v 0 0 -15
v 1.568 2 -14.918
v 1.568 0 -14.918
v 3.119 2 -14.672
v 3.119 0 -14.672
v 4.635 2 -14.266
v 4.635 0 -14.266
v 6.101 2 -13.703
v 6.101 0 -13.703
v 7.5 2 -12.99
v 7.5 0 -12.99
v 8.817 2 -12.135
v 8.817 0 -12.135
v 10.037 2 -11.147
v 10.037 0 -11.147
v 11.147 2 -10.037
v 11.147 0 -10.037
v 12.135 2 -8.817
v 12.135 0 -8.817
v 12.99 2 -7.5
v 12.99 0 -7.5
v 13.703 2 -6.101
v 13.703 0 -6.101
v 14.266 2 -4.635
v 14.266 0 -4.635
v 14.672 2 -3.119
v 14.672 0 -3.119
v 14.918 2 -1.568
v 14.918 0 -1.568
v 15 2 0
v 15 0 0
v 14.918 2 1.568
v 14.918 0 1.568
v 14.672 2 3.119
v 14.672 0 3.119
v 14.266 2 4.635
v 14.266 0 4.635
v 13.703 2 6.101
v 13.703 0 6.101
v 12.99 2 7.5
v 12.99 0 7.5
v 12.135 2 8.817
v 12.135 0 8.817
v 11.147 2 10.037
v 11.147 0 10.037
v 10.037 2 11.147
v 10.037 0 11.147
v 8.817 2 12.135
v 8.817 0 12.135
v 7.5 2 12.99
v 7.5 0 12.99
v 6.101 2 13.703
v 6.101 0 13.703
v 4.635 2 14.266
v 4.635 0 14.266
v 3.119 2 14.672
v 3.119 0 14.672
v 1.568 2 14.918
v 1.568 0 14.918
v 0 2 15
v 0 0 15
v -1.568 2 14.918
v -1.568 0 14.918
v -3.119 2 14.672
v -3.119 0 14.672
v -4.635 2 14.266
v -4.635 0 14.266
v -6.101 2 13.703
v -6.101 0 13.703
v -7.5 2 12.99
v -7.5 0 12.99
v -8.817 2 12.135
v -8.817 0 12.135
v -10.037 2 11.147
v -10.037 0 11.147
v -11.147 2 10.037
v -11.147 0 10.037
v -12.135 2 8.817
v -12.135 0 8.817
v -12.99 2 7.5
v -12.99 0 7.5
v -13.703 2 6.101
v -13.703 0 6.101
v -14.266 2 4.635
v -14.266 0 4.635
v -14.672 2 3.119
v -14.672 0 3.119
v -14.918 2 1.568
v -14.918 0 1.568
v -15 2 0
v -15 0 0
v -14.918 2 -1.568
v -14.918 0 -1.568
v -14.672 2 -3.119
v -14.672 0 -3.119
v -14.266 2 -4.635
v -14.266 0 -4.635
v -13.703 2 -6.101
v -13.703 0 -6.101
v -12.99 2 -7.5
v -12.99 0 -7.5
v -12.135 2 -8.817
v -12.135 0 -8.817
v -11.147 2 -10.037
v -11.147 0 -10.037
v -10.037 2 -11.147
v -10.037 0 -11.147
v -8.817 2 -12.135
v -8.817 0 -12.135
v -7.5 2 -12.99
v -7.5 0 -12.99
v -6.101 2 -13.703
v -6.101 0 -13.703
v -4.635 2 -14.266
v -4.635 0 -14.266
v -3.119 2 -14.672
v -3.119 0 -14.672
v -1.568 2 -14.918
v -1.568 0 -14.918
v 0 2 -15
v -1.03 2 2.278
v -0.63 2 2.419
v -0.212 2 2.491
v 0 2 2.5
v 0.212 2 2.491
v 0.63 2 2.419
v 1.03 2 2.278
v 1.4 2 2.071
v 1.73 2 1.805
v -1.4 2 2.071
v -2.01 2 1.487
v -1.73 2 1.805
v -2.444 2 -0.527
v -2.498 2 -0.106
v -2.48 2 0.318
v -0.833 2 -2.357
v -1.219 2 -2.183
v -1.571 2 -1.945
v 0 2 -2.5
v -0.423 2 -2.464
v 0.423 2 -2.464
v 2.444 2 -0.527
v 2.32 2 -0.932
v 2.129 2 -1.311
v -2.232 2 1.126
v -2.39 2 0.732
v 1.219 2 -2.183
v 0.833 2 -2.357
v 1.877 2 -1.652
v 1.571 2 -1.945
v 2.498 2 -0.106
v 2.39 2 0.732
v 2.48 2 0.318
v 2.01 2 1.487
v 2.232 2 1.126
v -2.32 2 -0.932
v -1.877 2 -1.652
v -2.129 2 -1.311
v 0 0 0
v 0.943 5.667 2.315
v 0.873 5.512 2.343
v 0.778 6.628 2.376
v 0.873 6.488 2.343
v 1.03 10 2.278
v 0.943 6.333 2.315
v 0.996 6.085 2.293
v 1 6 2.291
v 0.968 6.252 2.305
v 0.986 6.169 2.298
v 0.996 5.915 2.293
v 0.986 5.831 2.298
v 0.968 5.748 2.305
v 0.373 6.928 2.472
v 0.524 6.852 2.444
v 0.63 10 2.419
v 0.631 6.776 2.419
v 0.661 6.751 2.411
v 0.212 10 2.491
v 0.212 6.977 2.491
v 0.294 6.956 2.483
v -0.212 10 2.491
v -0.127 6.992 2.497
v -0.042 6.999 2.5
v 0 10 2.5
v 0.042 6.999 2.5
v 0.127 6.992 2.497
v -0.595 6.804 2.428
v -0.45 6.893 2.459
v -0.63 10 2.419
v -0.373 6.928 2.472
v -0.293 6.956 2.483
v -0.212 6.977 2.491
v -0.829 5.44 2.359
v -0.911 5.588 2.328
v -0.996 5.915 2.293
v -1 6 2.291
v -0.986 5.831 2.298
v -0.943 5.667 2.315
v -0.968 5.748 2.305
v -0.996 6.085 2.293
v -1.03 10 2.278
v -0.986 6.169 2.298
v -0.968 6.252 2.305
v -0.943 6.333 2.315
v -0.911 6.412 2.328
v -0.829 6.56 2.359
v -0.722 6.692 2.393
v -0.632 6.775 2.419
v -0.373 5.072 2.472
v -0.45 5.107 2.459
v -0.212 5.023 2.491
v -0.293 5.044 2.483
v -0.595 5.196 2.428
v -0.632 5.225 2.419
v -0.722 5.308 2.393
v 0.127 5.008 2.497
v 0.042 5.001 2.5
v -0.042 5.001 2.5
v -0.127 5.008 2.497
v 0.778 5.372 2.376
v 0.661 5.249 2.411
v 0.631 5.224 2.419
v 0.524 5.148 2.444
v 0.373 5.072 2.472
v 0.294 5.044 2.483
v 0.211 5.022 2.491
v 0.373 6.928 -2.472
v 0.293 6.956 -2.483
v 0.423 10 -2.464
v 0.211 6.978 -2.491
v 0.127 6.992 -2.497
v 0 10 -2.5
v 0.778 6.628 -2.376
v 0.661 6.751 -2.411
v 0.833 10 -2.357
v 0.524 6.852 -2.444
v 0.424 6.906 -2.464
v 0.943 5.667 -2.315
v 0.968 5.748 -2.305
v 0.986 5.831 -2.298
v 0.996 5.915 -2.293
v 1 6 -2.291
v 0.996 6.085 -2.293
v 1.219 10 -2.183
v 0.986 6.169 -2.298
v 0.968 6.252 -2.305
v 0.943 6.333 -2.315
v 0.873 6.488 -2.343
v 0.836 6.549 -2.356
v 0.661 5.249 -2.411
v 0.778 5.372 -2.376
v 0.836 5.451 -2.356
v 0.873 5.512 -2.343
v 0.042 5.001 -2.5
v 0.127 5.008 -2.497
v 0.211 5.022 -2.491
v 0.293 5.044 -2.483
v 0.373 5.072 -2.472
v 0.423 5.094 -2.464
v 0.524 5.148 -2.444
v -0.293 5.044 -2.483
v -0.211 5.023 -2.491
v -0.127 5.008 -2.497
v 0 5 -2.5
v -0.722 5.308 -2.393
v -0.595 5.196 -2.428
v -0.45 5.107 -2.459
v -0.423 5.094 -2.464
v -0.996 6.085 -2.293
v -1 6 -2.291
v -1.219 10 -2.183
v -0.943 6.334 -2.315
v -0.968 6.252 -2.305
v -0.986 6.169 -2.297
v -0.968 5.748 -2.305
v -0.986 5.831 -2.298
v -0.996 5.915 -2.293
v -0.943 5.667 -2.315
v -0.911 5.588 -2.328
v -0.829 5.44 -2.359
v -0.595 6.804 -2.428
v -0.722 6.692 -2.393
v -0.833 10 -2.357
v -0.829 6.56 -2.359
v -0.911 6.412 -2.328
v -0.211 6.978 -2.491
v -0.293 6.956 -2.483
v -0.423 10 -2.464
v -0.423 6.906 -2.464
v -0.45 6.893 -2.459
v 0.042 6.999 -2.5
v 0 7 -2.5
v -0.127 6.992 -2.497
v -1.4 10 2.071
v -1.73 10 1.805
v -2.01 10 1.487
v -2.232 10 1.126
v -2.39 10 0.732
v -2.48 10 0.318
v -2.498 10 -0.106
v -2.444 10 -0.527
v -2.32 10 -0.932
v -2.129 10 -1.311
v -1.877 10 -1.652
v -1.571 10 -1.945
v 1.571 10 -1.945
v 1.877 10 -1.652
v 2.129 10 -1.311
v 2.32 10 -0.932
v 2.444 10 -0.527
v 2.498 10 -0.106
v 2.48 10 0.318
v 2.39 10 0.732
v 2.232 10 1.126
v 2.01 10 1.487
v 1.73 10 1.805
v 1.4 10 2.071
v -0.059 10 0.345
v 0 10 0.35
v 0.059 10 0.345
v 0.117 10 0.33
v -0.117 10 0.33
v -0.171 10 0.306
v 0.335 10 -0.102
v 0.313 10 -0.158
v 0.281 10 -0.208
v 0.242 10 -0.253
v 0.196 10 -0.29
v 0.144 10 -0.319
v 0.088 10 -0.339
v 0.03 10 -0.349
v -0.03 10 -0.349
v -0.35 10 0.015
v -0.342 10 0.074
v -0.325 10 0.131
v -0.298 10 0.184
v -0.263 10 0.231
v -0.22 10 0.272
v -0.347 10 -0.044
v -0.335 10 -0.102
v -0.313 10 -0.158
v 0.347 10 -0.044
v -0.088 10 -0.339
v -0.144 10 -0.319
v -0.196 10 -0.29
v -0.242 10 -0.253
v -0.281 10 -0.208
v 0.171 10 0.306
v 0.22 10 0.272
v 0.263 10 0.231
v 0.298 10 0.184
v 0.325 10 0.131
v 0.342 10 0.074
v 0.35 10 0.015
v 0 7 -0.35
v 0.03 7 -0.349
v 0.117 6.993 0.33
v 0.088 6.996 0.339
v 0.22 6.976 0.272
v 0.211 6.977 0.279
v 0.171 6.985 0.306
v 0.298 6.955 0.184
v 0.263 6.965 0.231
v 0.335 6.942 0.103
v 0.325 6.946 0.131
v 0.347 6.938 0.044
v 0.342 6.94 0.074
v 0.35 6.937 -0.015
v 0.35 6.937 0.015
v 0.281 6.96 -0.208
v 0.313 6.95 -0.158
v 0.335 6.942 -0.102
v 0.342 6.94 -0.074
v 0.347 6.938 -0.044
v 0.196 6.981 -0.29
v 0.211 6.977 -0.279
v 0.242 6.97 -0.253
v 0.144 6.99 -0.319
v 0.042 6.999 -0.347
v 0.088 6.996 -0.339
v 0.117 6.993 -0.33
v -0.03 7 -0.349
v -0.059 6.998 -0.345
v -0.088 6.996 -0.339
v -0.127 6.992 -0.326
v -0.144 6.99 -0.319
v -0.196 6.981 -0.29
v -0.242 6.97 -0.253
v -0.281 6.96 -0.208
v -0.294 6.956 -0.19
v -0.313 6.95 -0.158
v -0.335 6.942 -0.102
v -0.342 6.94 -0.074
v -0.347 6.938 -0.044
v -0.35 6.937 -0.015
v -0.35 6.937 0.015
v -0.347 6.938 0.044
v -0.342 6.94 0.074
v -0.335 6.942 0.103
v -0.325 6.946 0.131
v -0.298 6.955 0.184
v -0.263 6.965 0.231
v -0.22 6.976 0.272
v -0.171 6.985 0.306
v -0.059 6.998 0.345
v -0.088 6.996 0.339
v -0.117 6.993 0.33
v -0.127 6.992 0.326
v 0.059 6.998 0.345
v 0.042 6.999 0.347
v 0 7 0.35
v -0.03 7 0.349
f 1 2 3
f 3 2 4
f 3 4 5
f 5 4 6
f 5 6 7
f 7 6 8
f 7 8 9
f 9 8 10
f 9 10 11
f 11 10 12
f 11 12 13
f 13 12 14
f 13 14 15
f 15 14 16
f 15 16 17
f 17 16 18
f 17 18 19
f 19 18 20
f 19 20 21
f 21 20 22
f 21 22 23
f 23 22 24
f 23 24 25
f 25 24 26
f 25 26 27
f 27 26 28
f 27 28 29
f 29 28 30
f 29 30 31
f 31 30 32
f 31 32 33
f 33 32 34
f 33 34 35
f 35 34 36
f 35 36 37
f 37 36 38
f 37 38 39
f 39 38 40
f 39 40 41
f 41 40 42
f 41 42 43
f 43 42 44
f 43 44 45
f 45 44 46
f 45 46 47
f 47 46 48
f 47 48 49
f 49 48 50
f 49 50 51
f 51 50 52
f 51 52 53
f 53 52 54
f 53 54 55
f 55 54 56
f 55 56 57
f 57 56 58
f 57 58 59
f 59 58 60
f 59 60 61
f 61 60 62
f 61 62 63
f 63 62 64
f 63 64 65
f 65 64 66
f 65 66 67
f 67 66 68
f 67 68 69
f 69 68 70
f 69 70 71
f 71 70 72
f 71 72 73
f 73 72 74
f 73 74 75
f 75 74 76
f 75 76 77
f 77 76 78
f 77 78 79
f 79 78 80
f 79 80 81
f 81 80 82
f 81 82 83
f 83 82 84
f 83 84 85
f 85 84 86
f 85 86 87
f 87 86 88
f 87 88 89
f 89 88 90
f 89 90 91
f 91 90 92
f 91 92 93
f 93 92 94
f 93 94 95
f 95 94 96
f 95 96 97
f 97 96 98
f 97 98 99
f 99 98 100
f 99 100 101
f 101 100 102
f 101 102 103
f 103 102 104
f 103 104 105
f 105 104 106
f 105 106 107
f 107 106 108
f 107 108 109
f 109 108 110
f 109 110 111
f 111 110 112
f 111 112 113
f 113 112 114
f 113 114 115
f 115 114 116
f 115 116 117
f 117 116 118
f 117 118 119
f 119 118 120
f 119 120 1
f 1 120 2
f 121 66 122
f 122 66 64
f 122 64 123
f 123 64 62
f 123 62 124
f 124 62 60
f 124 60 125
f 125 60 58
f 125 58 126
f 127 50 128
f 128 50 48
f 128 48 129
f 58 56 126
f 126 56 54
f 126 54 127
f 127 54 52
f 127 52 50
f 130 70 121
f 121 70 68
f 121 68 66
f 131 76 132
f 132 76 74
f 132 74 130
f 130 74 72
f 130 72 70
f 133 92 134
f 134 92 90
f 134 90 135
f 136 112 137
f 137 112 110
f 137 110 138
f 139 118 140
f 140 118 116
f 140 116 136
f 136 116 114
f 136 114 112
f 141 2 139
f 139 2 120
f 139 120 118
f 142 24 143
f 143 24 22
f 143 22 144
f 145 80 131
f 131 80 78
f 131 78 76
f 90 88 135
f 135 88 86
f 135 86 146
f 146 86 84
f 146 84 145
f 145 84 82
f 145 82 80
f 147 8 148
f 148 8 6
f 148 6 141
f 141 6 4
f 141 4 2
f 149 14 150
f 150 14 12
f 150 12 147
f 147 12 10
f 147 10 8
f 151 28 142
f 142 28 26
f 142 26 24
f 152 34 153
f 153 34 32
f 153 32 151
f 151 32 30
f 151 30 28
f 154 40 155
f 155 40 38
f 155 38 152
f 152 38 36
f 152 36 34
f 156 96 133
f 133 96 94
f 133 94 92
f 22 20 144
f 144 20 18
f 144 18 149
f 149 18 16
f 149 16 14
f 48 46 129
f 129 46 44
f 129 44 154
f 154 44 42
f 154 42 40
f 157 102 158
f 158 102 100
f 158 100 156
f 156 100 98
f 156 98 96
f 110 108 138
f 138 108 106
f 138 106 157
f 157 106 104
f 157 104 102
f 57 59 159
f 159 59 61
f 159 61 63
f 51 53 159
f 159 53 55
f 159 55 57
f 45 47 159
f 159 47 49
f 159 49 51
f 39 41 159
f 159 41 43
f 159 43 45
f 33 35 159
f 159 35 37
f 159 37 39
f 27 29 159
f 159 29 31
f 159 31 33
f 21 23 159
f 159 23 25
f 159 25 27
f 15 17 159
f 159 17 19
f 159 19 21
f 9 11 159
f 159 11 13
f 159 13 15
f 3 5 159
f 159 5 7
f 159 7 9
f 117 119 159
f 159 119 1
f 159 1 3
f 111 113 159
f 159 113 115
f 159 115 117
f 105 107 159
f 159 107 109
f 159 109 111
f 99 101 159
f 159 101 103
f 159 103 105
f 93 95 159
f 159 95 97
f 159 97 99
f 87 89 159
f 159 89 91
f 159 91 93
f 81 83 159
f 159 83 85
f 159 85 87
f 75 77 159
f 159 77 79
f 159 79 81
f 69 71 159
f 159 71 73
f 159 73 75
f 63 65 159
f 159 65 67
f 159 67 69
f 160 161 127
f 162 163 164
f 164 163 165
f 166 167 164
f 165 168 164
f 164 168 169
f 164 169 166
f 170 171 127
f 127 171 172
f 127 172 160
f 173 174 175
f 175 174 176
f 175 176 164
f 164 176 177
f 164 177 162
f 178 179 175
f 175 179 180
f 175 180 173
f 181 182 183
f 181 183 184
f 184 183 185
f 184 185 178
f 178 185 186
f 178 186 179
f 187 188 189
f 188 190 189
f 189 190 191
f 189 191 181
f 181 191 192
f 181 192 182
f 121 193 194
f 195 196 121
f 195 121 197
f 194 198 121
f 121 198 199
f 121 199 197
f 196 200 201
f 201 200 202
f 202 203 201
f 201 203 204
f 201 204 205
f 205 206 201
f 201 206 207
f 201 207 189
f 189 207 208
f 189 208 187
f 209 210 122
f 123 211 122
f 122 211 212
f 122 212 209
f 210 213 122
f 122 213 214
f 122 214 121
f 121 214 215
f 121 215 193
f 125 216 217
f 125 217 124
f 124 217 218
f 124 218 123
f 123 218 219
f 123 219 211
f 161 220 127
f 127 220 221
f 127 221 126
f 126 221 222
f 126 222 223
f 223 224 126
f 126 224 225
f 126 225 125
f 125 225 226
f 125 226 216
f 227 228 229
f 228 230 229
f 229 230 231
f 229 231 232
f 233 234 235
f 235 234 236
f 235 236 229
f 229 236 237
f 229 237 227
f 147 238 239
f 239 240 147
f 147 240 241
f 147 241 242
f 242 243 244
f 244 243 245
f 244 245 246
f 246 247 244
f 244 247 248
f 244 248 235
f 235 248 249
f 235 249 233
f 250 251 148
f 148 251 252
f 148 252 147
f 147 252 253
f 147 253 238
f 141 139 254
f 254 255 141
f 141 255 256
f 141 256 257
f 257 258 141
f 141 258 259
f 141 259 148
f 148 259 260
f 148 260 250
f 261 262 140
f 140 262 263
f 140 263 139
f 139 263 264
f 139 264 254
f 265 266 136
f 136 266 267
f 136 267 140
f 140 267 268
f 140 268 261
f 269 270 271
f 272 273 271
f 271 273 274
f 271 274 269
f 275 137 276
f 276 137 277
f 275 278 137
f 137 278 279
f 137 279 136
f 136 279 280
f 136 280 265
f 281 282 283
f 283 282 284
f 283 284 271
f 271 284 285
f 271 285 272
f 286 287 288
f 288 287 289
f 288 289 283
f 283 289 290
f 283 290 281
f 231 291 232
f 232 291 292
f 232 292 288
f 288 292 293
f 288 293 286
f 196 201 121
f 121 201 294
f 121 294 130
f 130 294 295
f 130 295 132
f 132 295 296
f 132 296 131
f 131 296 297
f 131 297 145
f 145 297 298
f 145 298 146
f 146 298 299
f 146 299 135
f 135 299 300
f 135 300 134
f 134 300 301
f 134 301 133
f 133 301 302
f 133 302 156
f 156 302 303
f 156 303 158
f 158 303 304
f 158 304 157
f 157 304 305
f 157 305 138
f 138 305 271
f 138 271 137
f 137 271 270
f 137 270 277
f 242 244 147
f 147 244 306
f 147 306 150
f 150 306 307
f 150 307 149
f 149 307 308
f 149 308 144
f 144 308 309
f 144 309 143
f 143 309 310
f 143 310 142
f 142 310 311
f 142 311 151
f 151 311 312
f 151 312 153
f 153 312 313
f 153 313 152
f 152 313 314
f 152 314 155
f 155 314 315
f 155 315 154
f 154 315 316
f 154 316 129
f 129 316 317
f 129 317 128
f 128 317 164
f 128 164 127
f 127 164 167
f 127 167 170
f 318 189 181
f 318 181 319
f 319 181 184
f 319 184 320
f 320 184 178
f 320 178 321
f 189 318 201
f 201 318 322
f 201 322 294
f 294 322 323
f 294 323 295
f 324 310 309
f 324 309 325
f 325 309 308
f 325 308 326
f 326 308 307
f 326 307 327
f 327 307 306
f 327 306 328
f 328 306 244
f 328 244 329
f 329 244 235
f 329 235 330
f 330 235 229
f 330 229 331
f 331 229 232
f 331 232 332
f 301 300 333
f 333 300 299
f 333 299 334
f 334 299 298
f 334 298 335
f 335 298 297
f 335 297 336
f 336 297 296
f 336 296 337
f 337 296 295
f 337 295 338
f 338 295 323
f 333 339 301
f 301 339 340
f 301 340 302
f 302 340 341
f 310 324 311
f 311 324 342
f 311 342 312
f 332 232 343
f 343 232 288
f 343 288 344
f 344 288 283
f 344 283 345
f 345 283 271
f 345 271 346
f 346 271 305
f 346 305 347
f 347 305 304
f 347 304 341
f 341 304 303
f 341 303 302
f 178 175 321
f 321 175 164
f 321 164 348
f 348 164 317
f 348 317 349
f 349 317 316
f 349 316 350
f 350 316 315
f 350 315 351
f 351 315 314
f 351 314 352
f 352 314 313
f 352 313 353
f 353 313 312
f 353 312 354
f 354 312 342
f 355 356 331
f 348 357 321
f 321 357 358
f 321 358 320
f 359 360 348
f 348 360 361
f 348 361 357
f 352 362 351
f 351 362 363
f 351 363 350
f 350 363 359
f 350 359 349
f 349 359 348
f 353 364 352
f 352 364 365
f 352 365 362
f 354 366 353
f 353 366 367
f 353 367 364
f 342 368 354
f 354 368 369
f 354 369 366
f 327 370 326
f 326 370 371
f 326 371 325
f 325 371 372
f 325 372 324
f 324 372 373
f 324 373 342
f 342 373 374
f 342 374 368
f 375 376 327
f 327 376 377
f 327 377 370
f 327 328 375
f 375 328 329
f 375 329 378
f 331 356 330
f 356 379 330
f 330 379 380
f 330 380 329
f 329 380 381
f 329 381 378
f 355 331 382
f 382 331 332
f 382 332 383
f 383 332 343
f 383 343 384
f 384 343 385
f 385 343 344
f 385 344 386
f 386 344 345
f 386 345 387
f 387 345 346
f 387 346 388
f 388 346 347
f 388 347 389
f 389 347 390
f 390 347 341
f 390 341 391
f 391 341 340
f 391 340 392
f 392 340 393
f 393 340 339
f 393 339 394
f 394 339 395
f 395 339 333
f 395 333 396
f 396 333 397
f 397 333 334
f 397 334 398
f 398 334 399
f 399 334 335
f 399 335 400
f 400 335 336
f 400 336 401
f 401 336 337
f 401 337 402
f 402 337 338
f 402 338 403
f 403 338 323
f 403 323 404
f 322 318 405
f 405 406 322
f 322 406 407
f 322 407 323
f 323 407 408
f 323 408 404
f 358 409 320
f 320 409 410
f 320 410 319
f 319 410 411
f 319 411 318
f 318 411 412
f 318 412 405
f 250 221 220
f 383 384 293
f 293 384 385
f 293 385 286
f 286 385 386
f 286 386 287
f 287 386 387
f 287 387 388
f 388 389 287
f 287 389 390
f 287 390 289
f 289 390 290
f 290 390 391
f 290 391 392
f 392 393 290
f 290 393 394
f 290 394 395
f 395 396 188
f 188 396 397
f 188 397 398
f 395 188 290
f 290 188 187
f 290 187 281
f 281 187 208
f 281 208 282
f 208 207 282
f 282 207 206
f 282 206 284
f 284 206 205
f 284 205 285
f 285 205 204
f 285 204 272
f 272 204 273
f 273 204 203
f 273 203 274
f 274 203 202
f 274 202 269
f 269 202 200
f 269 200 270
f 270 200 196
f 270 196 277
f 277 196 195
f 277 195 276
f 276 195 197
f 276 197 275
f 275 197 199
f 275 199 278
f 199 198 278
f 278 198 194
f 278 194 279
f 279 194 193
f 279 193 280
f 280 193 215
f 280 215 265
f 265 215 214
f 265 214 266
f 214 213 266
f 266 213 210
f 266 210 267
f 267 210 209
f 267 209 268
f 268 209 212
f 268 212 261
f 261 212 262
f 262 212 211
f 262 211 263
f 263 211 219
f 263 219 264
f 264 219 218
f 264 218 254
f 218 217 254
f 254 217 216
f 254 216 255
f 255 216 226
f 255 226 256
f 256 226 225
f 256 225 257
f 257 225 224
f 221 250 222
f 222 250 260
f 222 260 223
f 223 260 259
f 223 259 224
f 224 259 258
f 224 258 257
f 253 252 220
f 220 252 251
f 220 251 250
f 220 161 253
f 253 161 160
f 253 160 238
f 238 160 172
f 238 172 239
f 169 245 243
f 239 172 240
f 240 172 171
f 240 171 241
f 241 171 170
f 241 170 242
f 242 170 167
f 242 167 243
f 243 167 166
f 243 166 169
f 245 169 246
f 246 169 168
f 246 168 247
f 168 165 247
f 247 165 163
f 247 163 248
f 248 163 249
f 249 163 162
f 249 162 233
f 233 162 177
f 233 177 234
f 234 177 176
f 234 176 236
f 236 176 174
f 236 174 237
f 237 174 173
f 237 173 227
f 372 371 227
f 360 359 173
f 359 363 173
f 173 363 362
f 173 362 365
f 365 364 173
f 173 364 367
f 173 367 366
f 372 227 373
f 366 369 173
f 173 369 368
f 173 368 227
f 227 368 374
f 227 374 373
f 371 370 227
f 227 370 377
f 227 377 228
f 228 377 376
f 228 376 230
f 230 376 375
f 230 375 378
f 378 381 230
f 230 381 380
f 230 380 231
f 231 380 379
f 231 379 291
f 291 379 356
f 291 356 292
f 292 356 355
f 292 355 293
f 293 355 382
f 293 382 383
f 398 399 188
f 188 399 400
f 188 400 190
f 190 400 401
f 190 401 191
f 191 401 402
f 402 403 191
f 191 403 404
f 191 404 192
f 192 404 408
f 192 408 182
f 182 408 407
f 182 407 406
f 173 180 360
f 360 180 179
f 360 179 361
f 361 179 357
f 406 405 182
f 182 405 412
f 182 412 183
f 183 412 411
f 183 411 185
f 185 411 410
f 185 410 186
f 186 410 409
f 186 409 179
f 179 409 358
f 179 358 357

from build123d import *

# Parameters (mm, degrees)
SKETCH_1_R               = 15
EXTRUDE_1_DEPTH          = 2
SKETCH_1_7_R             = 2.5
EXTRUDE_2_DEPTH          = 10
SKETCH_2_R               = 0.35
CUT_EXTRUDE_1_DEPTH      = 4
CUT_EXTRUDE_3_DEPTH      = 24.452078799
CUT_EXTRUDE_3_DEPTH_BACK = 24.452078799
SKETCH_3_R               = 1


with BuildPart() as part:
    # 草图1 → 凸台-拉伸1 (new body)
    with BuildSketch(Plane(origin=(0, 0, 0), x_dir=(1, 0, 0), z_dir=(0, 1, 0))):
        Circle(SKETCH_1_R)
    extrude(amount=EXTRUDE_1_DEPTH)

    # 草图1<7> → 凸台-拉伸2 (add)
    with BuildSketch(Plane(origin=(0, 0, 0), x_dir=(1, 0, 0), z_dir=(0, 1, 0))):
        Circle(SKETCH_1_7_R)
    extrude(amount=EXTRUDE_2_DEPTH)

    # 草图2 → 切除-拉伸1 (cut)
    with BuildSketch(Plane(origin=(0, 10, 0), x_dir=(1, 0, 0), z_dir=(0, 1, 0))):
        Circle(SKETCH_2_R)
    extrude(amount=-CUT_EXTRUDE_1_DEPTH, mode=Mode.SUBTRACT)

    # 草图3 → 切除-拉伸3 (cut, two sides: drawn at the far end of the back side and taken through both)
    with BuildSketch(Plane.XY.offset(-CUT_EXTRUDE_3_DEPTH_BACK)):
        with Locations((0, 6)):
            Circle(SKETCH_3_R)
    extrude(amount=CUT_EXTRUDE_3_DEPTH + CUT_EXTRUDE_3_DEPTH_BACK, mode=Mode.SUBTRACT)


solid = part.part
